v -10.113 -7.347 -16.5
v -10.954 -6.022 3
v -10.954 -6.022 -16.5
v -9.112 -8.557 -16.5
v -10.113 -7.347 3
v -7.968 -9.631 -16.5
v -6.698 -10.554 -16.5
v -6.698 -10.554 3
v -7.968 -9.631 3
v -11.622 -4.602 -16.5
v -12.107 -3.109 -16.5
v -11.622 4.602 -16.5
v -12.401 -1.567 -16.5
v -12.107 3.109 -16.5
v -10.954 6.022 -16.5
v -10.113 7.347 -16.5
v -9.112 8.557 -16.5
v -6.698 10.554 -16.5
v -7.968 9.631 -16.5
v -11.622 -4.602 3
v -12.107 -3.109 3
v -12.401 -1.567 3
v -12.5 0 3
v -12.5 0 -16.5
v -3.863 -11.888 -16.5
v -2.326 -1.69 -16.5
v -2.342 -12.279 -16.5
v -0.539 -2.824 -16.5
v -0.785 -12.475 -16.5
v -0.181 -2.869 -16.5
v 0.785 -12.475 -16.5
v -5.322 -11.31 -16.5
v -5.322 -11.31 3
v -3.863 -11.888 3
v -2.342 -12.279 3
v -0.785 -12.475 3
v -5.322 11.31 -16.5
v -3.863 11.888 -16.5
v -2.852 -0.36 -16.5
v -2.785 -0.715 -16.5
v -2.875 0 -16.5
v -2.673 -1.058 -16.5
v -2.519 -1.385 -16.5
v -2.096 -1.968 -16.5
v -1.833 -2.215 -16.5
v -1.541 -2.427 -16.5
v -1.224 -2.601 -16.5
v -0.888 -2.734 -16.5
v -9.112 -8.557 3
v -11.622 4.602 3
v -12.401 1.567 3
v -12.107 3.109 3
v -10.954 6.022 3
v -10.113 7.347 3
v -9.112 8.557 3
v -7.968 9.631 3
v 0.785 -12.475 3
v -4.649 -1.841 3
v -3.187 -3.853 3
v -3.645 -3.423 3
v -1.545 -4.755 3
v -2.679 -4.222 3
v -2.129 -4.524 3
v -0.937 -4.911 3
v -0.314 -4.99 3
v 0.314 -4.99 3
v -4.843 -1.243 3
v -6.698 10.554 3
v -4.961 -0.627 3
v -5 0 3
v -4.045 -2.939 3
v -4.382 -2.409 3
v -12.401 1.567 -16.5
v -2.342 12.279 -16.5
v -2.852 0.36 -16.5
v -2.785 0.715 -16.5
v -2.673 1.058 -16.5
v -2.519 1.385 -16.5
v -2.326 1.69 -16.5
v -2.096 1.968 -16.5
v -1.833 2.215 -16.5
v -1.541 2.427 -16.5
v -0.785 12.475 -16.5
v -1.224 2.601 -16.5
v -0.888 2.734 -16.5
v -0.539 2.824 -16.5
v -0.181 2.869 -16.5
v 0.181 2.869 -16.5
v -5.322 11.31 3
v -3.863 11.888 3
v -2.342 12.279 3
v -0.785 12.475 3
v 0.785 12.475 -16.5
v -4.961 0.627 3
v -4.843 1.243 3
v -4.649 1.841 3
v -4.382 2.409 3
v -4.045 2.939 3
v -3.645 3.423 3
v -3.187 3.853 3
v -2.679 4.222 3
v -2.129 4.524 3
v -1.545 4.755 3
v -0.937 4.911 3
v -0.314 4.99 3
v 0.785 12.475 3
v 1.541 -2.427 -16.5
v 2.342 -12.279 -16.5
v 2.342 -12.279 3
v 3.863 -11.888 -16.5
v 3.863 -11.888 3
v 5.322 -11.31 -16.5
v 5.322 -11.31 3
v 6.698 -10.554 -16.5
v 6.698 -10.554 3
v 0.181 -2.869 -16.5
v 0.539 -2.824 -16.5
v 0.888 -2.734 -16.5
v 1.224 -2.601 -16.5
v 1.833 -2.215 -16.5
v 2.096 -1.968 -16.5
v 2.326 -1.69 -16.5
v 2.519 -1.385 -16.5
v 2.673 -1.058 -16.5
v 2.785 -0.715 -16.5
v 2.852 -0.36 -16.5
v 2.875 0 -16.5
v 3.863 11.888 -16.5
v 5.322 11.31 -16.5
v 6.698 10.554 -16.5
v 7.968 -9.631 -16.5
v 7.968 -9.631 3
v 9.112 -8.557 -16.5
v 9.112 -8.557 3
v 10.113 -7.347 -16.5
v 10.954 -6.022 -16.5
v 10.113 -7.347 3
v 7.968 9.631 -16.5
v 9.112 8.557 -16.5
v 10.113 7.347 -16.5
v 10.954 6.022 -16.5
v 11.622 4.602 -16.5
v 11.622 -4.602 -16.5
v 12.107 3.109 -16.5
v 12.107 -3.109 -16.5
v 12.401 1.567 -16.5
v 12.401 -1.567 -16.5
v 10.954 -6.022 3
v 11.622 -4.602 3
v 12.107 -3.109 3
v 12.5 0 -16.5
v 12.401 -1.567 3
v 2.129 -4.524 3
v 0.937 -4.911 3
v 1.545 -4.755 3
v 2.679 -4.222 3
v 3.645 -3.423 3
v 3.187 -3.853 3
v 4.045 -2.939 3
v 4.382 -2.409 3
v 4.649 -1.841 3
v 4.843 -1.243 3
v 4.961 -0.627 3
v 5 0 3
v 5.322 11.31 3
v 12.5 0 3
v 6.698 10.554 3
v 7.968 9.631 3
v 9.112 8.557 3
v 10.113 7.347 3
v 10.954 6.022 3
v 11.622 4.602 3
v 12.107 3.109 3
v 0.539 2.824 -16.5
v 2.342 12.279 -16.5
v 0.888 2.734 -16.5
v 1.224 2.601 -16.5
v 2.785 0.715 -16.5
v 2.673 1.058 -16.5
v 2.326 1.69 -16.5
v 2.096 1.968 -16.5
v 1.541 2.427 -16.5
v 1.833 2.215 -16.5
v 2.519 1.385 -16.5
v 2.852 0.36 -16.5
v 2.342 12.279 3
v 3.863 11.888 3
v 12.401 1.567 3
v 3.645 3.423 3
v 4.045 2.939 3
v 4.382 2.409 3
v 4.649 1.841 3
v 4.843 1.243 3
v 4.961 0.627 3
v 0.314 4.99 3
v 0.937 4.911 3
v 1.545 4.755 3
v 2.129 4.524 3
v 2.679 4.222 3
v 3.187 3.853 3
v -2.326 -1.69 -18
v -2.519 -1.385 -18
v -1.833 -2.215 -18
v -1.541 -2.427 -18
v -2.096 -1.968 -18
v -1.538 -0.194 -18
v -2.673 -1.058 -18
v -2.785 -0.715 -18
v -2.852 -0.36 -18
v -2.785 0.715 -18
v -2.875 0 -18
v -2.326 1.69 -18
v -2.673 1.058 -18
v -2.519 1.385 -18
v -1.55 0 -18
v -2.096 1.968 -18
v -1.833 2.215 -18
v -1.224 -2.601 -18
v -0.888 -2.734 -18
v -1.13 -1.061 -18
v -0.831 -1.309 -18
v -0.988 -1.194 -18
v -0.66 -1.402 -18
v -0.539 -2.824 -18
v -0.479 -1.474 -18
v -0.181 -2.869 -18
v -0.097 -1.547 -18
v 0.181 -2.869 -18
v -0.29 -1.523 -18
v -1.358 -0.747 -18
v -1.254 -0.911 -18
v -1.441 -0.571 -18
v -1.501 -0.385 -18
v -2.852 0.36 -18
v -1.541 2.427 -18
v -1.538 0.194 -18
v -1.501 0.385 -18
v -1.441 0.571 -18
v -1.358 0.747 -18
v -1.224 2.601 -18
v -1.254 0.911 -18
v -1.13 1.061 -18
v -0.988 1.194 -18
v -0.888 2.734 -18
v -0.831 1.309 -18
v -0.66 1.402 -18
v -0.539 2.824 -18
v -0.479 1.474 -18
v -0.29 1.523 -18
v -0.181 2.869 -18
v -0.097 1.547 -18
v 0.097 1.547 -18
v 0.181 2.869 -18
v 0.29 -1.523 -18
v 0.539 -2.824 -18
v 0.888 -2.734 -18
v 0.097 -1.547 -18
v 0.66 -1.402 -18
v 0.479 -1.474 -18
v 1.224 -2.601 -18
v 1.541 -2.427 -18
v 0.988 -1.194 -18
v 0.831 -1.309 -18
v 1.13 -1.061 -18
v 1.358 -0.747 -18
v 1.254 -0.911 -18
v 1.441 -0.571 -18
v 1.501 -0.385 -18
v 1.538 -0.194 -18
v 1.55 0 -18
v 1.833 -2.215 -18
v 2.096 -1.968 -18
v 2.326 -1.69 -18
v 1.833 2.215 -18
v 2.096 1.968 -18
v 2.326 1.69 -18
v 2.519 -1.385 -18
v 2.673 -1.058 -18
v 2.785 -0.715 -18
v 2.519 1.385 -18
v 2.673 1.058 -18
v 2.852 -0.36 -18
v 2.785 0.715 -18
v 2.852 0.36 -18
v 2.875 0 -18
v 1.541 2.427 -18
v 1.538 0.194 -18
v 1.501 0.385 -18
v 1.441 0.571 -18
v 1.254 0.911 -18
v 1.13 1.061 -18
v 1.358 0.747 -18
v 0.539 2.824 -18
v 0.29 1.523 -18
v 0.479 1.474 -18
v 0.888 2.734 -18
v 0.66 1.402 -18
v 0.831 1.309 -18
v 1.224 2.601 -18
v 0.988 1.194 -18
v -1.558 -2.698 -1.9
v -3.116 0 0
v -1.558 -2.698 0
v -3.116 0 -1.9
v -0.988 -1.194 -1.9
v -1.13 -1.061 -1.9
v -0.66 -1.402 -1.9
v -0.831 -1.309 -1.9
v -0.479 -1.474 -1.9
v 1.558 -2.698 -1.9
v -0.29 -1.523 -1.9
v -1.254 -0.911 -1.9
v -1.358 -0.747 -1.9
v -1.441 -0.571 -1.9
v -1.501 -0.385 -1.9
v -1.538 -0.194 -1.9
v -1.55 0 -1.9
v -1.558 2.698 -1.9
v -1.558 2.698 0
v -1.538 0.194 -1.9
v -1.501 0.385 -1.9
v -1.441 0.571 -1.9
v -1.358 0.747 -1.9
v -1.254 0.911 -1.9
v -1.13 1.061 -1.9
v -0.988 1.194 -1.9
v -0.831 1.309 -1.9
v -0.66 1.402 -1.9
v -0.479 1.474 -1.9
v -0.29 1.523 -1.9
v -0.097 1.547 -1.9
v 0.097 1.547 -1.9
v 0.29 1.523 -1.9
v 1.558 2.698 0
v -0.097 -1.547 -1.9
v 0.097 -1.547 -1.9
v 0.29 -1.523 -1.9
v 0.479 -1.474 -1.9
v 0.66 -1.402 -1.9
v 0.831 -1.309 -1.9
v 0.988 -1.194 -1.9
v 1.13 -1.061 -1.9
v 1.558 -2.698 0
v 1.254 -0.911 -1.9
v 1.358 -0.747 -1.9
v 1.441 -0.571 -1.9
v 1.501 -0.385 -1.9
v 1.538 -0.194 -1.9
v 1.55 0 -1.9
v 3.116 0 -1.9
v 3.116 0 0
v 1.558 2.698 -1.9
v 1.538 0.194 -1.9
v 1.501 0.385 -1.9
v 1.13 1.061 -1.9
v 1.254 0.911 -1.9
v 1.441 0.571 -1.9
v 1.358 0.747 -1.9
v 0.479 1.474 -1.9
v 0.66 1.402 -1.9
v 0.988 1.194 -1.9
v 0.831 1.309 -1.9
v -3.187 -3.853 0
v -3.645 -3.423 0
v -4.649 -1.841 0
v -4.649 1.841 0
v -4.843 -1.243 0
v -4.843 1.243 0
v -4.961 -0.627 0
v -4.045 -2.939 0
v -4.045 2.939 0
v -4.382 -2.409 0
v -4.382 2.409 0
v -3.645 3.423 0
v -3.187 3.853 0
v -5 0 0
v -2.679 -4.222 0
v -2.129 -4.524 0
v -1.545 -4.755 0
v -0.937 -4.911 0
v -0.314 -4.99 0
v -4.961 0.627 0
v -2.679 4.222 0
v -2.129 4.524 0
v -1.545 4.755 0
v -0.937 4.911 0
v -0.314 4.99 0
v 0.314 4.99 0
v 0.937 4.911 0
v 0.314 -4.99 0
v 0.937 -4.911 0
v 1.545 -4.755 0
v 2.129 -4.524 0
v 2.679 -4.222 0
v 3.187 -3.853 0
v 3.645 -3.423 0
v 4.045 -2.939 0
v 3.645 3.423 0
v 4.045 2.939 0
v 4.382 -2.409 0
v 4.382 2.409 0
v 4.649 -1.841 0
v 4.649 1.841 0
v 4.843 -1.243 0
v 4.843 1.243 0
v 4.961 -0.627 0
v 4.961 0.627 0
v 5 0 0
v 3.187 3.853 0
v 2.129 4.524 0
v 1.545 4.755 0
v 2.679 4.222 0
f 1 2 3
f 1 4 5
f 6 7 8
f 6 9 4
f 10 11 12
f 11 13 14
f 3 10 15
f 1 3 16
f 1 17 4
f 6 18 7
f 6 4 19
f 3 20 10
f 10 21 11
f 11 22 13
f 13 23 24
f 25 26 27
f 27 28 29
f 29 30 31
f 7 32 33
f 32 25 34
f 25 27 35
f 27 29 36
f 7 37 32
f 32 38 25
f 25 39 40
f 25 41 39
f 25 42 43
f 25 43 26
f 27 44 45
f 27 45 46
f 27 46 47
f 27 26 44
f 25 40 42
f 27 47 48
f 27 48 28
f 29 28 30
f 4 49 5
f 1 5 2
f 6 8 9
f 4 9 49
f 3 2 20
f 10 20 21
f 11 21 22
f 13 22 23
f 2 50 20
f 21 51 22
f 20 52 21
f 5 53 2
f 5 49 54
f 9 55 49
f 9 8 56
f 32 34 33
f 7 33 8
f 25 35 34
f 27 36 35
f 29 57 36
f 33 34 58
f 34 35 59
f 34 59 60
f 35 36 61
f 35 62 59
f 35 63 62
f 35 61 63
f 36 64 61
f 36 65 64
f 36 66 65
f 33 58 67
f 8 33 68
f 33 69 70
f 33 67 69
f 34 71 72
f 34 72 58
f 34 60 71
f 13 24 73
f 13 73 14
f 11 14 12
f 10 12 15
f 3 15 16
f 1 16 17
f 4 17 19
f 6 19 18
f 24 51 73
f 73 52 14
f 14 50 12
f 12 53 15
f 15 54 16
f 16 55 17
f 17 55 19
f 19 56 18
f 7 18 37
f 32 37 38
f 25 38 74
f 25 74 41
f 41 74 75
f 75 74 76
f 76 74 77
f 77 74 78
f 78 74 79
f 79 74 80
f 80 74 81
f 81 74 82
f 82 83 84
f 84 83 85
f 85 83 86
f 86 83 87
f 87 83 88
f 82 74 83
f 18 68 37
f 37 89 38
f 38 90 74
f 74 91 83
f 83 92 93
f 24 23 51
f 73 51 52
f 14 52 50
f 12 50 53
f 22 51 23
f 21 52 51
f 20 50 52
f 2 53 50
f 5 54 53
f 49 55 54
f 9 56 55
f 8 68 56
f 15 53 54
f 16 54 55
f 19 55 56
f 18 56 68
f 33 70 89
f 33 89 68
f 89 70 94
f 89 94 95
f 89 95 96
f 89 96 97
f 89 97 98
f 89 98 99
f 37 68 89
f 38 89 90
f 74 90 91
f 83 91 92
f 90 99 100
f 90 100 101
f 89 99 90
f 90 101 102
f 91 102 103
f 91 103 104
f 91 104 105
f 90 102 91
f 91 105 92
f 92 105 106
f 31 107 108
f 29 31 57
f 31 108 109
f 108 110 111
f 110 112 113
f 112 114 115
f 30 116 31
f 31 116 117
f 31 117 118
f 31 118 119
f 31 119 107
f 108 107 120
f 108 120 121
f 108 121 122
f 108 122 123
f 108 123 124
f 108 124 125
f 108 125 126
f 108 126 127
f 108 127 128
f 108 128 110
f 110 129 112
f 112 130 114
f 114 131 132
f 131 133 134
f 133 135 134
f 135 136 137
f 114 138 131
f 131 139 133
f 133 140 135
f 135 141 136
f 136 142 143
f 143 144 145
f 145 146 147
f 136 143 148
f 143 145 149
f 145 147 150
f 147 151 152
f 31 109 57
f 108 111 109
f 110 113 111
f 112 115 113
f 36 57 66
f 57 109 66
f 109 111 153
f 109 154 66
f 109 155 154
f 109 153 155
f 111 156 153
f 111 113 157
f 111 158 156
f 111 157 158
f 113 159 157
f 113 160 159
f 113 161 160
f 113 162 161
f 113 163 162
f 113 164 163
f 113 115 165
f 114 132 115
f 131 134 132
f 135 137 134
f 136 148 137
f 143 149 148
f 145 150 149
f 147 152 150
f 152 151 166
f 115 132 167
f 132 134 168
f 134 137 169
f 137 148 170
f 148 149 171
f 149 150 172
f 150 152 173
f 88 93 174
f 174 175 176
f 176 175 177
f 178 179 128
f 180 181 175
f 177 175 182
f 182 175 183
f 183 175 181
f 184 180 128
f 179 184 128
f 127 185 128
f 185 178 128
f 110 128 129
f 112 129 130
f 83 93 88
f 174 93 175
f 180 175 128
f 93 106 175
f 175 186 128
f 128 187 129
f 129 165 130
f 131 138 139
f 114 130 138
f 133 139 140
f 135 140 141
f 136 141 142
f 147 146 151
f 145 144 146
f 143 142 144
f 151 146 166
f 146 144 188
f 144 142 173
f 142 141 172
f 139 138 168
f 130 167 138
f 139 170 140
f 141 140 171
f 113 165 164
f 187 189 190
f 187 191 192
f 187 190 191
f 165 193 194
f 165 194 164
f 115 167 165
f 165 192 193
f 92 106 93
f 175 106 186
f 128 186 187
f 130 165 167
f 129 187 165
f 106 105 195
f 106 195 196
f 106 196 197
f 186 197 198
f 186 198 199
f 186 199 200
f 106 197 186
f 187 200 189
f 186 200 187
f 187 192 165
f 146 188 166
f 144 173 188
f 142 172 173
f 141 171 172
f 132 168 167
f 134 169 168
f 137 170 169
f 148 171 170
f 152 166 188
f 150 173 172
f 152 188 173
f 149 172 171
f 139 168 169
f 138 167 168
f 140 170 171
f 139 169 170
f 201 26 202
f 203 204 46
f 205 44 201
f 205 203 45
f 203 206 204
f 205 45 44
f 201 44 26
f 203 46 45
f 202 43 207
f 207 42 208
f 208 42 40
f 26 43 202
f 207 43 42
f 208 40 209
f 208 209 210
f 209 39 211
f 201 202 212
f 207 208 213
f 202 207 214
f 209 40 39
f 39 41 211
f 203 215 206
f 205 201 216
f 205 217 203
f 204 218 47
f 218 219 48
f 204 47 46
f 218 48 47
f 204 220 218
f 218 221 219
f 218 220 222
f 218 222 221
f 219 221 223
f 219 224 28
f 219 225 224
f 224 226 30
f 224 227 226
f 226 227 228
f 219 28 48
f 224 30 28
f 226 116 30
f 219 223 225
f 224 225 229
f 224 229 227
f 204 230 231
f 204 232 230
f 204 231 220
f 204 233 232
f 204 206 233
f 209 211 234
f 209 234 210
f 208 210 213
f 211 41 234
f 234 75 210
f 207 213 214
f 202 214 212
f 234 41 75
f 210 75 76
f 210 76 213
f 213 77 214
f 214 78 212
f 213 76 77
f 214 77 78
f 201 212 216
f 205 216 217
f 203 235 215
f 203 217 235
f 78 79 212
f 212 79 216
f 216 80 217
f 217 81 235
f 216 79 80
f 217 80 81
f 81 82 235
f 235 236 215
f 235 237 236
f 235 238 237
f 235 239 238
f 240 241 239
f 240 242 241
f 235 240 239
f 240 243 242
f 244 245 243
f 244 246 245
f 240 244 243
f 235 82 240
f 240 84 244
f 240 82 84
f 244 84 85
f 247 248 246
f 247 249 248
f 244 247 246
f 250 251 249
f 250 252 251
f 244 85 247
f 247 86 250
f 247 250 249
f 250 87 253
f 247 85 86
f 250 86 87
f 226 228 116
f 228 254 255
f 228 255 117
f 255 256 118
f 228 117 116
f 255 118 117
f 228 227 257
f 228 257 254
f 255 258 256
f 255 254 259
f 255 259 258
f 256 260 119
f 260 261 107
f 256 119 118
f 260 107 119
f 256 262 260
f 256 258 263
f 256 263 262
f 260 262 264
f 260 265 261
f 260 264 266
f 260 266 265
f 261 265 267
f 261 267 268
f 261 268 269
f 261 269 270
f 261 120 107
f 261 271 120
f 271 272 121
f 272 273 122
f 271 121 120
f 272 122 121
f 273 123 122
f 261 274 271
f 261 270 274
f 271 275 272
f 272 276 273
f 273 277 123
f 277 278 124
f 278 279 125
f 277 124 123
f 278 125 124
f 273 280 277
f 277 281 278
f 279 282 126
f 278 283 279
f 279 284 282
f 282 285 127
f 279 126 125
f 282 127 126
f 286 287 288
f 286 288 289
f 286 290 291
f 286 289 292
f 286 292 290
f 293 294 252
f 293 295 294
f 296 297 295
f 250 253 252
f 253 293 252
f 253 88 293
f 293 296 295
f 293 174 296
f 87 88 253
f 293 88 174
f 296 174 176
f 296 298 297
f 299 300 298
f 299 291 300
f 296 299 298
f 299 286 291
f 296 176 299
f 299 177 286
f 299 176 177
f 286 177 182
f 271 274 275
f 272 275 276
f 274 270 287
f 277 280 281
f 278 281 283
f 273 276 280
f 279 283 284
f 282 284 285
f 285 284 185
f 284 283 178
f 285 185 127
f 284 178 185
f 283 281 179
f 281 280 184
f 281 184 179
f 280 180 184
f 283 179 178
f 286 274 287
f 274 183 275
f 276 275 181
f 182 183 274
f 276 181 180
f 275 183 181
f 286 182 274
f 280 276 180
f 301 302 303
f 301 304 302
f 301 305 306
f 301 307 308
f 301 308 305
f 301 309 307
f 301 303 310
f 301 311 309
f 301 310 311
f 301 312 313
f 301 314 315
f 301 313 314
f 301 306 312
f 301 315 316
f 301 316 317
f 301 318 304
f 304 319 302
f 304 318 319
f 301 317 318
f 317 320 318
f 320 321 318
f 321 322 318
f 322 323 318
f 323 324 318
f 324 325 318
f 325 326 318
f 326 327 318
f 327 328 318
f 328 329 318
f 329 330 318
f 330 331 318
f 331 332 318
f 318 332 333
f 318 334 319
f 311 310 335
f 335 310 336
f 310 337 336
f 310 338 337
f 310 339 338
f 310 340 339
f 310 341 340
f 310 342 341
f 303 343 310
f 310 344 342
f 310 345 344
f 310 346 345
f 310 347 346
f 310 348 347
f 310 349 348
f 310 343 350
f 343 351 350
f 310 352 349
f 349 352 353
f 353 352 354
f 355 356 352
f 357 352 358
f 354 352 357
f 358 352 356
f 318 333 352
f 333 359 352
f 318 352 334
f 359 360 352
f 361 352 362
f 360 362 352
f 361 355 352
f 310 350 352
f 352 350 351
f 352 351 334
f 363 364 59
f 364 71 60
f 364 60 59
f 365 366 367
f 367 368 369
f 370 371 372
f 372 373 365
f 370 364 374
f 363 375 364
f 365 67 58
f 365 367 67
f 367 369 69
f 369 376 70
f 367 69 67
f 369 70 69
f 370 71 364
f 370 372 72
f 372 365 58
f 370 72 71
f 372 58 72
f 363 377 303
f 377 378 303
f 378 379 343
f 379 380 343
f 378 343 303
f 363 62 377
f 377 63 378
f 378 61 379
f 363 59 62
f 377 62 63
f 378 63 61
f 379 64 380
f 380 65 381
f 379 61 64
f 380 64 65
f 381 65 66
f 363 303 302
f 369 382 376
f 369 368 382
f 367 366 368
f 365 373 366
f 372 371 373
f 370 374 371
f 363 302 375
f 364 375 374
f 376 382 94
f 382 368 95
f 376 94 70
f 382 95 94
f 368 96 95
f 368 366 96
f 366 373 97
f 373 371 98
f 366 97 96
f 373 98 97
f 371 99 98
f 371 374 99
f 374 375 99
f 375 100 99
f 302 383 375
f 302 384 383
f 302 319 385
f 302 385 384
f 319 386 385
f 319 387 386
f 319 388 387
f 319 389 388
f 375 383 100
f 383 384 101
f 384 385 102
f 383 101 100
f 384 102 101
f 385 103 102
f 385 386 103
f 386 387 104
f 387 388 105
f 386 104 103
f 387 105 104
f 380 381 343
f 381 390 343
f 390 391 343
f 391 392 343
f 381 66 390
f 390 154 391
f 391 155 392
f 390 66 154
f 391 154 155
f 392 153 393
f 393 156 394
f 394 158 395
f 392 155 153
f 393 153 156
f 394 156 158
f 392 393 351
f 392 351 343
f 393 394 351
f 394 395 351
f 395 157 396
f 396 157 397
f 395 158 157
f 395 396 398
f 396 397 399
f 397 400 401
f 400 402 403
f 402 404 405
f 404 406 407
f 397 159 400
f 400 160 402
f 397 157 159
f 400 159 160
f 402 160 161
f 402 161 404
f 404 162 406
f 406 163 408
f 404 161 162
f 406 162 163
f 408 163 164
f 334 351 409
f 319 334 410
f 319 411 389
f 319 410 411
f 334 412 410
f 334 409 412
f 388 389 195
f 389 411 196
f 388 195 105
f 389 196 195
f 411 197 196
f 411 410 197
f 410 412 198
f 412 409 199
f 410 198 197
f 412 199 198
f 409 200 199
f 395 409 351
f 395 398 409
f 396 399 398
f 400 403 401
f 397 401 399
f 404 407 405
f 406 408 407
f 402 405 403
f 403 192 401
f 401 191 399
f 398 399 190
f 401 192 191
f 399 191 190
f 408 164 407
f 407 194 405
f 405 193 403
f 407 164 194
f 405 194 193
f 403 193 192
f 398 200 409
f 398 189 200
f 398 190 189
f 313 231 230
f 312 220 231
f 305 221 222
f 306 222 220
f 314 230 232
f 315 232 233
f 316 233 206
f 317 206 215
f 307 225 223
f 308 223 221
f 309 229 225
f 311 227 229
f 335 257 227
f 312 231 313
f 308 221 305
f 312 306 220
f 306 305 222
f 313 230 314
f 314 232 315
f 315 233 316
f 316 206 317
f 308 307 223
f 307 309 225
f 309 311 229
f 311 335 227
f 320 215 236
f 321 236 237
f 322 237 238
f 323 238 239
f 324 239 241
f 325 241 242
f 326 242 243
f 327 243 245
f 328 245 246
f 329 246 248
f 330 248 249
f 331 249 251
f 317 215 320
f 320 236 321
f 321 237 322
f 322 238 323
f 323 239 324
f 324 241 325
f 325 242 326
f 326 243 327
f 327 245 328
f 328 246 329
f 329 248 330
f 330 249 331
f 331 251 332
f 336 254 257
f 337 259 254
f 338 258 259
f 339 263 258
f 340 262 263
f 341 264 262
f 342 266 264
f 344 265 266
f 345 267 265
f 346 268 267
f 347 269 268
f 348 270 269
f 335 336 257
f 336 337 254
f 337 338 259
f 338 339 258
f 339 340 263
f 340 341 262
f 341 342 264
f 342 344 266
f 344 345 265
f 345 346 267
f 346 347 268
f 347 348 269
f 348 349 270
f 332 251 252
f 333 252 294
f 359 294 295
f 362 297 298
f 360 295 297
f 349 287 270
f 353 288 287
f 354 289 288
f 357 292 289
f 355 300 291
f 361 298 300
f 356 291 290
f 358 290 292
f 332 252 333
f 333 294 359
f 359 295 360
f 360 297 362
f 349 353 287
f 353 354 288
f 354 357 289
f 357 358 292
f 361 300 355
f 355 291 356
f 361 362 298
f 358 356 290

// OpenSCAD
$fn = 50;

difference() {
	union() {
		translate(v = [0, 0, -16.5]) {
			cylinder(h = 19.5, r = 12.5);
		}
		#translate(v = [0, 0, -18.0]) {
			cylinder(h = 18, r = 2.875);
		}
	}
	union() {
		translate(v = [0, 0, 0]) {
			rotate(a = [0, 0, 0]) {
				difference() {
					union() {
						translate(v = [0, 0, -1.9]) {
							linear_extrude(height = 1.9) {
								polygon(points = [[3.1158, 0.0], [1.5579000000000005, 2.698361953111554], [-1.5578999999999994, 2.6983619531115544], [-3.1158, 3.815754496783323e-16], [-1.5579000000000014, -2.6983619531115535], [1.557899999999998, -2.6983619531115552]]);
							}
						}
					}
					union();
				}
			}
		}
		#cylinder(h = 3, r = 5.0);
		#translate(v = [0, 0, -100.0]) {
			cylinder(h = 200, r = 1.55);
		}
	}
}
